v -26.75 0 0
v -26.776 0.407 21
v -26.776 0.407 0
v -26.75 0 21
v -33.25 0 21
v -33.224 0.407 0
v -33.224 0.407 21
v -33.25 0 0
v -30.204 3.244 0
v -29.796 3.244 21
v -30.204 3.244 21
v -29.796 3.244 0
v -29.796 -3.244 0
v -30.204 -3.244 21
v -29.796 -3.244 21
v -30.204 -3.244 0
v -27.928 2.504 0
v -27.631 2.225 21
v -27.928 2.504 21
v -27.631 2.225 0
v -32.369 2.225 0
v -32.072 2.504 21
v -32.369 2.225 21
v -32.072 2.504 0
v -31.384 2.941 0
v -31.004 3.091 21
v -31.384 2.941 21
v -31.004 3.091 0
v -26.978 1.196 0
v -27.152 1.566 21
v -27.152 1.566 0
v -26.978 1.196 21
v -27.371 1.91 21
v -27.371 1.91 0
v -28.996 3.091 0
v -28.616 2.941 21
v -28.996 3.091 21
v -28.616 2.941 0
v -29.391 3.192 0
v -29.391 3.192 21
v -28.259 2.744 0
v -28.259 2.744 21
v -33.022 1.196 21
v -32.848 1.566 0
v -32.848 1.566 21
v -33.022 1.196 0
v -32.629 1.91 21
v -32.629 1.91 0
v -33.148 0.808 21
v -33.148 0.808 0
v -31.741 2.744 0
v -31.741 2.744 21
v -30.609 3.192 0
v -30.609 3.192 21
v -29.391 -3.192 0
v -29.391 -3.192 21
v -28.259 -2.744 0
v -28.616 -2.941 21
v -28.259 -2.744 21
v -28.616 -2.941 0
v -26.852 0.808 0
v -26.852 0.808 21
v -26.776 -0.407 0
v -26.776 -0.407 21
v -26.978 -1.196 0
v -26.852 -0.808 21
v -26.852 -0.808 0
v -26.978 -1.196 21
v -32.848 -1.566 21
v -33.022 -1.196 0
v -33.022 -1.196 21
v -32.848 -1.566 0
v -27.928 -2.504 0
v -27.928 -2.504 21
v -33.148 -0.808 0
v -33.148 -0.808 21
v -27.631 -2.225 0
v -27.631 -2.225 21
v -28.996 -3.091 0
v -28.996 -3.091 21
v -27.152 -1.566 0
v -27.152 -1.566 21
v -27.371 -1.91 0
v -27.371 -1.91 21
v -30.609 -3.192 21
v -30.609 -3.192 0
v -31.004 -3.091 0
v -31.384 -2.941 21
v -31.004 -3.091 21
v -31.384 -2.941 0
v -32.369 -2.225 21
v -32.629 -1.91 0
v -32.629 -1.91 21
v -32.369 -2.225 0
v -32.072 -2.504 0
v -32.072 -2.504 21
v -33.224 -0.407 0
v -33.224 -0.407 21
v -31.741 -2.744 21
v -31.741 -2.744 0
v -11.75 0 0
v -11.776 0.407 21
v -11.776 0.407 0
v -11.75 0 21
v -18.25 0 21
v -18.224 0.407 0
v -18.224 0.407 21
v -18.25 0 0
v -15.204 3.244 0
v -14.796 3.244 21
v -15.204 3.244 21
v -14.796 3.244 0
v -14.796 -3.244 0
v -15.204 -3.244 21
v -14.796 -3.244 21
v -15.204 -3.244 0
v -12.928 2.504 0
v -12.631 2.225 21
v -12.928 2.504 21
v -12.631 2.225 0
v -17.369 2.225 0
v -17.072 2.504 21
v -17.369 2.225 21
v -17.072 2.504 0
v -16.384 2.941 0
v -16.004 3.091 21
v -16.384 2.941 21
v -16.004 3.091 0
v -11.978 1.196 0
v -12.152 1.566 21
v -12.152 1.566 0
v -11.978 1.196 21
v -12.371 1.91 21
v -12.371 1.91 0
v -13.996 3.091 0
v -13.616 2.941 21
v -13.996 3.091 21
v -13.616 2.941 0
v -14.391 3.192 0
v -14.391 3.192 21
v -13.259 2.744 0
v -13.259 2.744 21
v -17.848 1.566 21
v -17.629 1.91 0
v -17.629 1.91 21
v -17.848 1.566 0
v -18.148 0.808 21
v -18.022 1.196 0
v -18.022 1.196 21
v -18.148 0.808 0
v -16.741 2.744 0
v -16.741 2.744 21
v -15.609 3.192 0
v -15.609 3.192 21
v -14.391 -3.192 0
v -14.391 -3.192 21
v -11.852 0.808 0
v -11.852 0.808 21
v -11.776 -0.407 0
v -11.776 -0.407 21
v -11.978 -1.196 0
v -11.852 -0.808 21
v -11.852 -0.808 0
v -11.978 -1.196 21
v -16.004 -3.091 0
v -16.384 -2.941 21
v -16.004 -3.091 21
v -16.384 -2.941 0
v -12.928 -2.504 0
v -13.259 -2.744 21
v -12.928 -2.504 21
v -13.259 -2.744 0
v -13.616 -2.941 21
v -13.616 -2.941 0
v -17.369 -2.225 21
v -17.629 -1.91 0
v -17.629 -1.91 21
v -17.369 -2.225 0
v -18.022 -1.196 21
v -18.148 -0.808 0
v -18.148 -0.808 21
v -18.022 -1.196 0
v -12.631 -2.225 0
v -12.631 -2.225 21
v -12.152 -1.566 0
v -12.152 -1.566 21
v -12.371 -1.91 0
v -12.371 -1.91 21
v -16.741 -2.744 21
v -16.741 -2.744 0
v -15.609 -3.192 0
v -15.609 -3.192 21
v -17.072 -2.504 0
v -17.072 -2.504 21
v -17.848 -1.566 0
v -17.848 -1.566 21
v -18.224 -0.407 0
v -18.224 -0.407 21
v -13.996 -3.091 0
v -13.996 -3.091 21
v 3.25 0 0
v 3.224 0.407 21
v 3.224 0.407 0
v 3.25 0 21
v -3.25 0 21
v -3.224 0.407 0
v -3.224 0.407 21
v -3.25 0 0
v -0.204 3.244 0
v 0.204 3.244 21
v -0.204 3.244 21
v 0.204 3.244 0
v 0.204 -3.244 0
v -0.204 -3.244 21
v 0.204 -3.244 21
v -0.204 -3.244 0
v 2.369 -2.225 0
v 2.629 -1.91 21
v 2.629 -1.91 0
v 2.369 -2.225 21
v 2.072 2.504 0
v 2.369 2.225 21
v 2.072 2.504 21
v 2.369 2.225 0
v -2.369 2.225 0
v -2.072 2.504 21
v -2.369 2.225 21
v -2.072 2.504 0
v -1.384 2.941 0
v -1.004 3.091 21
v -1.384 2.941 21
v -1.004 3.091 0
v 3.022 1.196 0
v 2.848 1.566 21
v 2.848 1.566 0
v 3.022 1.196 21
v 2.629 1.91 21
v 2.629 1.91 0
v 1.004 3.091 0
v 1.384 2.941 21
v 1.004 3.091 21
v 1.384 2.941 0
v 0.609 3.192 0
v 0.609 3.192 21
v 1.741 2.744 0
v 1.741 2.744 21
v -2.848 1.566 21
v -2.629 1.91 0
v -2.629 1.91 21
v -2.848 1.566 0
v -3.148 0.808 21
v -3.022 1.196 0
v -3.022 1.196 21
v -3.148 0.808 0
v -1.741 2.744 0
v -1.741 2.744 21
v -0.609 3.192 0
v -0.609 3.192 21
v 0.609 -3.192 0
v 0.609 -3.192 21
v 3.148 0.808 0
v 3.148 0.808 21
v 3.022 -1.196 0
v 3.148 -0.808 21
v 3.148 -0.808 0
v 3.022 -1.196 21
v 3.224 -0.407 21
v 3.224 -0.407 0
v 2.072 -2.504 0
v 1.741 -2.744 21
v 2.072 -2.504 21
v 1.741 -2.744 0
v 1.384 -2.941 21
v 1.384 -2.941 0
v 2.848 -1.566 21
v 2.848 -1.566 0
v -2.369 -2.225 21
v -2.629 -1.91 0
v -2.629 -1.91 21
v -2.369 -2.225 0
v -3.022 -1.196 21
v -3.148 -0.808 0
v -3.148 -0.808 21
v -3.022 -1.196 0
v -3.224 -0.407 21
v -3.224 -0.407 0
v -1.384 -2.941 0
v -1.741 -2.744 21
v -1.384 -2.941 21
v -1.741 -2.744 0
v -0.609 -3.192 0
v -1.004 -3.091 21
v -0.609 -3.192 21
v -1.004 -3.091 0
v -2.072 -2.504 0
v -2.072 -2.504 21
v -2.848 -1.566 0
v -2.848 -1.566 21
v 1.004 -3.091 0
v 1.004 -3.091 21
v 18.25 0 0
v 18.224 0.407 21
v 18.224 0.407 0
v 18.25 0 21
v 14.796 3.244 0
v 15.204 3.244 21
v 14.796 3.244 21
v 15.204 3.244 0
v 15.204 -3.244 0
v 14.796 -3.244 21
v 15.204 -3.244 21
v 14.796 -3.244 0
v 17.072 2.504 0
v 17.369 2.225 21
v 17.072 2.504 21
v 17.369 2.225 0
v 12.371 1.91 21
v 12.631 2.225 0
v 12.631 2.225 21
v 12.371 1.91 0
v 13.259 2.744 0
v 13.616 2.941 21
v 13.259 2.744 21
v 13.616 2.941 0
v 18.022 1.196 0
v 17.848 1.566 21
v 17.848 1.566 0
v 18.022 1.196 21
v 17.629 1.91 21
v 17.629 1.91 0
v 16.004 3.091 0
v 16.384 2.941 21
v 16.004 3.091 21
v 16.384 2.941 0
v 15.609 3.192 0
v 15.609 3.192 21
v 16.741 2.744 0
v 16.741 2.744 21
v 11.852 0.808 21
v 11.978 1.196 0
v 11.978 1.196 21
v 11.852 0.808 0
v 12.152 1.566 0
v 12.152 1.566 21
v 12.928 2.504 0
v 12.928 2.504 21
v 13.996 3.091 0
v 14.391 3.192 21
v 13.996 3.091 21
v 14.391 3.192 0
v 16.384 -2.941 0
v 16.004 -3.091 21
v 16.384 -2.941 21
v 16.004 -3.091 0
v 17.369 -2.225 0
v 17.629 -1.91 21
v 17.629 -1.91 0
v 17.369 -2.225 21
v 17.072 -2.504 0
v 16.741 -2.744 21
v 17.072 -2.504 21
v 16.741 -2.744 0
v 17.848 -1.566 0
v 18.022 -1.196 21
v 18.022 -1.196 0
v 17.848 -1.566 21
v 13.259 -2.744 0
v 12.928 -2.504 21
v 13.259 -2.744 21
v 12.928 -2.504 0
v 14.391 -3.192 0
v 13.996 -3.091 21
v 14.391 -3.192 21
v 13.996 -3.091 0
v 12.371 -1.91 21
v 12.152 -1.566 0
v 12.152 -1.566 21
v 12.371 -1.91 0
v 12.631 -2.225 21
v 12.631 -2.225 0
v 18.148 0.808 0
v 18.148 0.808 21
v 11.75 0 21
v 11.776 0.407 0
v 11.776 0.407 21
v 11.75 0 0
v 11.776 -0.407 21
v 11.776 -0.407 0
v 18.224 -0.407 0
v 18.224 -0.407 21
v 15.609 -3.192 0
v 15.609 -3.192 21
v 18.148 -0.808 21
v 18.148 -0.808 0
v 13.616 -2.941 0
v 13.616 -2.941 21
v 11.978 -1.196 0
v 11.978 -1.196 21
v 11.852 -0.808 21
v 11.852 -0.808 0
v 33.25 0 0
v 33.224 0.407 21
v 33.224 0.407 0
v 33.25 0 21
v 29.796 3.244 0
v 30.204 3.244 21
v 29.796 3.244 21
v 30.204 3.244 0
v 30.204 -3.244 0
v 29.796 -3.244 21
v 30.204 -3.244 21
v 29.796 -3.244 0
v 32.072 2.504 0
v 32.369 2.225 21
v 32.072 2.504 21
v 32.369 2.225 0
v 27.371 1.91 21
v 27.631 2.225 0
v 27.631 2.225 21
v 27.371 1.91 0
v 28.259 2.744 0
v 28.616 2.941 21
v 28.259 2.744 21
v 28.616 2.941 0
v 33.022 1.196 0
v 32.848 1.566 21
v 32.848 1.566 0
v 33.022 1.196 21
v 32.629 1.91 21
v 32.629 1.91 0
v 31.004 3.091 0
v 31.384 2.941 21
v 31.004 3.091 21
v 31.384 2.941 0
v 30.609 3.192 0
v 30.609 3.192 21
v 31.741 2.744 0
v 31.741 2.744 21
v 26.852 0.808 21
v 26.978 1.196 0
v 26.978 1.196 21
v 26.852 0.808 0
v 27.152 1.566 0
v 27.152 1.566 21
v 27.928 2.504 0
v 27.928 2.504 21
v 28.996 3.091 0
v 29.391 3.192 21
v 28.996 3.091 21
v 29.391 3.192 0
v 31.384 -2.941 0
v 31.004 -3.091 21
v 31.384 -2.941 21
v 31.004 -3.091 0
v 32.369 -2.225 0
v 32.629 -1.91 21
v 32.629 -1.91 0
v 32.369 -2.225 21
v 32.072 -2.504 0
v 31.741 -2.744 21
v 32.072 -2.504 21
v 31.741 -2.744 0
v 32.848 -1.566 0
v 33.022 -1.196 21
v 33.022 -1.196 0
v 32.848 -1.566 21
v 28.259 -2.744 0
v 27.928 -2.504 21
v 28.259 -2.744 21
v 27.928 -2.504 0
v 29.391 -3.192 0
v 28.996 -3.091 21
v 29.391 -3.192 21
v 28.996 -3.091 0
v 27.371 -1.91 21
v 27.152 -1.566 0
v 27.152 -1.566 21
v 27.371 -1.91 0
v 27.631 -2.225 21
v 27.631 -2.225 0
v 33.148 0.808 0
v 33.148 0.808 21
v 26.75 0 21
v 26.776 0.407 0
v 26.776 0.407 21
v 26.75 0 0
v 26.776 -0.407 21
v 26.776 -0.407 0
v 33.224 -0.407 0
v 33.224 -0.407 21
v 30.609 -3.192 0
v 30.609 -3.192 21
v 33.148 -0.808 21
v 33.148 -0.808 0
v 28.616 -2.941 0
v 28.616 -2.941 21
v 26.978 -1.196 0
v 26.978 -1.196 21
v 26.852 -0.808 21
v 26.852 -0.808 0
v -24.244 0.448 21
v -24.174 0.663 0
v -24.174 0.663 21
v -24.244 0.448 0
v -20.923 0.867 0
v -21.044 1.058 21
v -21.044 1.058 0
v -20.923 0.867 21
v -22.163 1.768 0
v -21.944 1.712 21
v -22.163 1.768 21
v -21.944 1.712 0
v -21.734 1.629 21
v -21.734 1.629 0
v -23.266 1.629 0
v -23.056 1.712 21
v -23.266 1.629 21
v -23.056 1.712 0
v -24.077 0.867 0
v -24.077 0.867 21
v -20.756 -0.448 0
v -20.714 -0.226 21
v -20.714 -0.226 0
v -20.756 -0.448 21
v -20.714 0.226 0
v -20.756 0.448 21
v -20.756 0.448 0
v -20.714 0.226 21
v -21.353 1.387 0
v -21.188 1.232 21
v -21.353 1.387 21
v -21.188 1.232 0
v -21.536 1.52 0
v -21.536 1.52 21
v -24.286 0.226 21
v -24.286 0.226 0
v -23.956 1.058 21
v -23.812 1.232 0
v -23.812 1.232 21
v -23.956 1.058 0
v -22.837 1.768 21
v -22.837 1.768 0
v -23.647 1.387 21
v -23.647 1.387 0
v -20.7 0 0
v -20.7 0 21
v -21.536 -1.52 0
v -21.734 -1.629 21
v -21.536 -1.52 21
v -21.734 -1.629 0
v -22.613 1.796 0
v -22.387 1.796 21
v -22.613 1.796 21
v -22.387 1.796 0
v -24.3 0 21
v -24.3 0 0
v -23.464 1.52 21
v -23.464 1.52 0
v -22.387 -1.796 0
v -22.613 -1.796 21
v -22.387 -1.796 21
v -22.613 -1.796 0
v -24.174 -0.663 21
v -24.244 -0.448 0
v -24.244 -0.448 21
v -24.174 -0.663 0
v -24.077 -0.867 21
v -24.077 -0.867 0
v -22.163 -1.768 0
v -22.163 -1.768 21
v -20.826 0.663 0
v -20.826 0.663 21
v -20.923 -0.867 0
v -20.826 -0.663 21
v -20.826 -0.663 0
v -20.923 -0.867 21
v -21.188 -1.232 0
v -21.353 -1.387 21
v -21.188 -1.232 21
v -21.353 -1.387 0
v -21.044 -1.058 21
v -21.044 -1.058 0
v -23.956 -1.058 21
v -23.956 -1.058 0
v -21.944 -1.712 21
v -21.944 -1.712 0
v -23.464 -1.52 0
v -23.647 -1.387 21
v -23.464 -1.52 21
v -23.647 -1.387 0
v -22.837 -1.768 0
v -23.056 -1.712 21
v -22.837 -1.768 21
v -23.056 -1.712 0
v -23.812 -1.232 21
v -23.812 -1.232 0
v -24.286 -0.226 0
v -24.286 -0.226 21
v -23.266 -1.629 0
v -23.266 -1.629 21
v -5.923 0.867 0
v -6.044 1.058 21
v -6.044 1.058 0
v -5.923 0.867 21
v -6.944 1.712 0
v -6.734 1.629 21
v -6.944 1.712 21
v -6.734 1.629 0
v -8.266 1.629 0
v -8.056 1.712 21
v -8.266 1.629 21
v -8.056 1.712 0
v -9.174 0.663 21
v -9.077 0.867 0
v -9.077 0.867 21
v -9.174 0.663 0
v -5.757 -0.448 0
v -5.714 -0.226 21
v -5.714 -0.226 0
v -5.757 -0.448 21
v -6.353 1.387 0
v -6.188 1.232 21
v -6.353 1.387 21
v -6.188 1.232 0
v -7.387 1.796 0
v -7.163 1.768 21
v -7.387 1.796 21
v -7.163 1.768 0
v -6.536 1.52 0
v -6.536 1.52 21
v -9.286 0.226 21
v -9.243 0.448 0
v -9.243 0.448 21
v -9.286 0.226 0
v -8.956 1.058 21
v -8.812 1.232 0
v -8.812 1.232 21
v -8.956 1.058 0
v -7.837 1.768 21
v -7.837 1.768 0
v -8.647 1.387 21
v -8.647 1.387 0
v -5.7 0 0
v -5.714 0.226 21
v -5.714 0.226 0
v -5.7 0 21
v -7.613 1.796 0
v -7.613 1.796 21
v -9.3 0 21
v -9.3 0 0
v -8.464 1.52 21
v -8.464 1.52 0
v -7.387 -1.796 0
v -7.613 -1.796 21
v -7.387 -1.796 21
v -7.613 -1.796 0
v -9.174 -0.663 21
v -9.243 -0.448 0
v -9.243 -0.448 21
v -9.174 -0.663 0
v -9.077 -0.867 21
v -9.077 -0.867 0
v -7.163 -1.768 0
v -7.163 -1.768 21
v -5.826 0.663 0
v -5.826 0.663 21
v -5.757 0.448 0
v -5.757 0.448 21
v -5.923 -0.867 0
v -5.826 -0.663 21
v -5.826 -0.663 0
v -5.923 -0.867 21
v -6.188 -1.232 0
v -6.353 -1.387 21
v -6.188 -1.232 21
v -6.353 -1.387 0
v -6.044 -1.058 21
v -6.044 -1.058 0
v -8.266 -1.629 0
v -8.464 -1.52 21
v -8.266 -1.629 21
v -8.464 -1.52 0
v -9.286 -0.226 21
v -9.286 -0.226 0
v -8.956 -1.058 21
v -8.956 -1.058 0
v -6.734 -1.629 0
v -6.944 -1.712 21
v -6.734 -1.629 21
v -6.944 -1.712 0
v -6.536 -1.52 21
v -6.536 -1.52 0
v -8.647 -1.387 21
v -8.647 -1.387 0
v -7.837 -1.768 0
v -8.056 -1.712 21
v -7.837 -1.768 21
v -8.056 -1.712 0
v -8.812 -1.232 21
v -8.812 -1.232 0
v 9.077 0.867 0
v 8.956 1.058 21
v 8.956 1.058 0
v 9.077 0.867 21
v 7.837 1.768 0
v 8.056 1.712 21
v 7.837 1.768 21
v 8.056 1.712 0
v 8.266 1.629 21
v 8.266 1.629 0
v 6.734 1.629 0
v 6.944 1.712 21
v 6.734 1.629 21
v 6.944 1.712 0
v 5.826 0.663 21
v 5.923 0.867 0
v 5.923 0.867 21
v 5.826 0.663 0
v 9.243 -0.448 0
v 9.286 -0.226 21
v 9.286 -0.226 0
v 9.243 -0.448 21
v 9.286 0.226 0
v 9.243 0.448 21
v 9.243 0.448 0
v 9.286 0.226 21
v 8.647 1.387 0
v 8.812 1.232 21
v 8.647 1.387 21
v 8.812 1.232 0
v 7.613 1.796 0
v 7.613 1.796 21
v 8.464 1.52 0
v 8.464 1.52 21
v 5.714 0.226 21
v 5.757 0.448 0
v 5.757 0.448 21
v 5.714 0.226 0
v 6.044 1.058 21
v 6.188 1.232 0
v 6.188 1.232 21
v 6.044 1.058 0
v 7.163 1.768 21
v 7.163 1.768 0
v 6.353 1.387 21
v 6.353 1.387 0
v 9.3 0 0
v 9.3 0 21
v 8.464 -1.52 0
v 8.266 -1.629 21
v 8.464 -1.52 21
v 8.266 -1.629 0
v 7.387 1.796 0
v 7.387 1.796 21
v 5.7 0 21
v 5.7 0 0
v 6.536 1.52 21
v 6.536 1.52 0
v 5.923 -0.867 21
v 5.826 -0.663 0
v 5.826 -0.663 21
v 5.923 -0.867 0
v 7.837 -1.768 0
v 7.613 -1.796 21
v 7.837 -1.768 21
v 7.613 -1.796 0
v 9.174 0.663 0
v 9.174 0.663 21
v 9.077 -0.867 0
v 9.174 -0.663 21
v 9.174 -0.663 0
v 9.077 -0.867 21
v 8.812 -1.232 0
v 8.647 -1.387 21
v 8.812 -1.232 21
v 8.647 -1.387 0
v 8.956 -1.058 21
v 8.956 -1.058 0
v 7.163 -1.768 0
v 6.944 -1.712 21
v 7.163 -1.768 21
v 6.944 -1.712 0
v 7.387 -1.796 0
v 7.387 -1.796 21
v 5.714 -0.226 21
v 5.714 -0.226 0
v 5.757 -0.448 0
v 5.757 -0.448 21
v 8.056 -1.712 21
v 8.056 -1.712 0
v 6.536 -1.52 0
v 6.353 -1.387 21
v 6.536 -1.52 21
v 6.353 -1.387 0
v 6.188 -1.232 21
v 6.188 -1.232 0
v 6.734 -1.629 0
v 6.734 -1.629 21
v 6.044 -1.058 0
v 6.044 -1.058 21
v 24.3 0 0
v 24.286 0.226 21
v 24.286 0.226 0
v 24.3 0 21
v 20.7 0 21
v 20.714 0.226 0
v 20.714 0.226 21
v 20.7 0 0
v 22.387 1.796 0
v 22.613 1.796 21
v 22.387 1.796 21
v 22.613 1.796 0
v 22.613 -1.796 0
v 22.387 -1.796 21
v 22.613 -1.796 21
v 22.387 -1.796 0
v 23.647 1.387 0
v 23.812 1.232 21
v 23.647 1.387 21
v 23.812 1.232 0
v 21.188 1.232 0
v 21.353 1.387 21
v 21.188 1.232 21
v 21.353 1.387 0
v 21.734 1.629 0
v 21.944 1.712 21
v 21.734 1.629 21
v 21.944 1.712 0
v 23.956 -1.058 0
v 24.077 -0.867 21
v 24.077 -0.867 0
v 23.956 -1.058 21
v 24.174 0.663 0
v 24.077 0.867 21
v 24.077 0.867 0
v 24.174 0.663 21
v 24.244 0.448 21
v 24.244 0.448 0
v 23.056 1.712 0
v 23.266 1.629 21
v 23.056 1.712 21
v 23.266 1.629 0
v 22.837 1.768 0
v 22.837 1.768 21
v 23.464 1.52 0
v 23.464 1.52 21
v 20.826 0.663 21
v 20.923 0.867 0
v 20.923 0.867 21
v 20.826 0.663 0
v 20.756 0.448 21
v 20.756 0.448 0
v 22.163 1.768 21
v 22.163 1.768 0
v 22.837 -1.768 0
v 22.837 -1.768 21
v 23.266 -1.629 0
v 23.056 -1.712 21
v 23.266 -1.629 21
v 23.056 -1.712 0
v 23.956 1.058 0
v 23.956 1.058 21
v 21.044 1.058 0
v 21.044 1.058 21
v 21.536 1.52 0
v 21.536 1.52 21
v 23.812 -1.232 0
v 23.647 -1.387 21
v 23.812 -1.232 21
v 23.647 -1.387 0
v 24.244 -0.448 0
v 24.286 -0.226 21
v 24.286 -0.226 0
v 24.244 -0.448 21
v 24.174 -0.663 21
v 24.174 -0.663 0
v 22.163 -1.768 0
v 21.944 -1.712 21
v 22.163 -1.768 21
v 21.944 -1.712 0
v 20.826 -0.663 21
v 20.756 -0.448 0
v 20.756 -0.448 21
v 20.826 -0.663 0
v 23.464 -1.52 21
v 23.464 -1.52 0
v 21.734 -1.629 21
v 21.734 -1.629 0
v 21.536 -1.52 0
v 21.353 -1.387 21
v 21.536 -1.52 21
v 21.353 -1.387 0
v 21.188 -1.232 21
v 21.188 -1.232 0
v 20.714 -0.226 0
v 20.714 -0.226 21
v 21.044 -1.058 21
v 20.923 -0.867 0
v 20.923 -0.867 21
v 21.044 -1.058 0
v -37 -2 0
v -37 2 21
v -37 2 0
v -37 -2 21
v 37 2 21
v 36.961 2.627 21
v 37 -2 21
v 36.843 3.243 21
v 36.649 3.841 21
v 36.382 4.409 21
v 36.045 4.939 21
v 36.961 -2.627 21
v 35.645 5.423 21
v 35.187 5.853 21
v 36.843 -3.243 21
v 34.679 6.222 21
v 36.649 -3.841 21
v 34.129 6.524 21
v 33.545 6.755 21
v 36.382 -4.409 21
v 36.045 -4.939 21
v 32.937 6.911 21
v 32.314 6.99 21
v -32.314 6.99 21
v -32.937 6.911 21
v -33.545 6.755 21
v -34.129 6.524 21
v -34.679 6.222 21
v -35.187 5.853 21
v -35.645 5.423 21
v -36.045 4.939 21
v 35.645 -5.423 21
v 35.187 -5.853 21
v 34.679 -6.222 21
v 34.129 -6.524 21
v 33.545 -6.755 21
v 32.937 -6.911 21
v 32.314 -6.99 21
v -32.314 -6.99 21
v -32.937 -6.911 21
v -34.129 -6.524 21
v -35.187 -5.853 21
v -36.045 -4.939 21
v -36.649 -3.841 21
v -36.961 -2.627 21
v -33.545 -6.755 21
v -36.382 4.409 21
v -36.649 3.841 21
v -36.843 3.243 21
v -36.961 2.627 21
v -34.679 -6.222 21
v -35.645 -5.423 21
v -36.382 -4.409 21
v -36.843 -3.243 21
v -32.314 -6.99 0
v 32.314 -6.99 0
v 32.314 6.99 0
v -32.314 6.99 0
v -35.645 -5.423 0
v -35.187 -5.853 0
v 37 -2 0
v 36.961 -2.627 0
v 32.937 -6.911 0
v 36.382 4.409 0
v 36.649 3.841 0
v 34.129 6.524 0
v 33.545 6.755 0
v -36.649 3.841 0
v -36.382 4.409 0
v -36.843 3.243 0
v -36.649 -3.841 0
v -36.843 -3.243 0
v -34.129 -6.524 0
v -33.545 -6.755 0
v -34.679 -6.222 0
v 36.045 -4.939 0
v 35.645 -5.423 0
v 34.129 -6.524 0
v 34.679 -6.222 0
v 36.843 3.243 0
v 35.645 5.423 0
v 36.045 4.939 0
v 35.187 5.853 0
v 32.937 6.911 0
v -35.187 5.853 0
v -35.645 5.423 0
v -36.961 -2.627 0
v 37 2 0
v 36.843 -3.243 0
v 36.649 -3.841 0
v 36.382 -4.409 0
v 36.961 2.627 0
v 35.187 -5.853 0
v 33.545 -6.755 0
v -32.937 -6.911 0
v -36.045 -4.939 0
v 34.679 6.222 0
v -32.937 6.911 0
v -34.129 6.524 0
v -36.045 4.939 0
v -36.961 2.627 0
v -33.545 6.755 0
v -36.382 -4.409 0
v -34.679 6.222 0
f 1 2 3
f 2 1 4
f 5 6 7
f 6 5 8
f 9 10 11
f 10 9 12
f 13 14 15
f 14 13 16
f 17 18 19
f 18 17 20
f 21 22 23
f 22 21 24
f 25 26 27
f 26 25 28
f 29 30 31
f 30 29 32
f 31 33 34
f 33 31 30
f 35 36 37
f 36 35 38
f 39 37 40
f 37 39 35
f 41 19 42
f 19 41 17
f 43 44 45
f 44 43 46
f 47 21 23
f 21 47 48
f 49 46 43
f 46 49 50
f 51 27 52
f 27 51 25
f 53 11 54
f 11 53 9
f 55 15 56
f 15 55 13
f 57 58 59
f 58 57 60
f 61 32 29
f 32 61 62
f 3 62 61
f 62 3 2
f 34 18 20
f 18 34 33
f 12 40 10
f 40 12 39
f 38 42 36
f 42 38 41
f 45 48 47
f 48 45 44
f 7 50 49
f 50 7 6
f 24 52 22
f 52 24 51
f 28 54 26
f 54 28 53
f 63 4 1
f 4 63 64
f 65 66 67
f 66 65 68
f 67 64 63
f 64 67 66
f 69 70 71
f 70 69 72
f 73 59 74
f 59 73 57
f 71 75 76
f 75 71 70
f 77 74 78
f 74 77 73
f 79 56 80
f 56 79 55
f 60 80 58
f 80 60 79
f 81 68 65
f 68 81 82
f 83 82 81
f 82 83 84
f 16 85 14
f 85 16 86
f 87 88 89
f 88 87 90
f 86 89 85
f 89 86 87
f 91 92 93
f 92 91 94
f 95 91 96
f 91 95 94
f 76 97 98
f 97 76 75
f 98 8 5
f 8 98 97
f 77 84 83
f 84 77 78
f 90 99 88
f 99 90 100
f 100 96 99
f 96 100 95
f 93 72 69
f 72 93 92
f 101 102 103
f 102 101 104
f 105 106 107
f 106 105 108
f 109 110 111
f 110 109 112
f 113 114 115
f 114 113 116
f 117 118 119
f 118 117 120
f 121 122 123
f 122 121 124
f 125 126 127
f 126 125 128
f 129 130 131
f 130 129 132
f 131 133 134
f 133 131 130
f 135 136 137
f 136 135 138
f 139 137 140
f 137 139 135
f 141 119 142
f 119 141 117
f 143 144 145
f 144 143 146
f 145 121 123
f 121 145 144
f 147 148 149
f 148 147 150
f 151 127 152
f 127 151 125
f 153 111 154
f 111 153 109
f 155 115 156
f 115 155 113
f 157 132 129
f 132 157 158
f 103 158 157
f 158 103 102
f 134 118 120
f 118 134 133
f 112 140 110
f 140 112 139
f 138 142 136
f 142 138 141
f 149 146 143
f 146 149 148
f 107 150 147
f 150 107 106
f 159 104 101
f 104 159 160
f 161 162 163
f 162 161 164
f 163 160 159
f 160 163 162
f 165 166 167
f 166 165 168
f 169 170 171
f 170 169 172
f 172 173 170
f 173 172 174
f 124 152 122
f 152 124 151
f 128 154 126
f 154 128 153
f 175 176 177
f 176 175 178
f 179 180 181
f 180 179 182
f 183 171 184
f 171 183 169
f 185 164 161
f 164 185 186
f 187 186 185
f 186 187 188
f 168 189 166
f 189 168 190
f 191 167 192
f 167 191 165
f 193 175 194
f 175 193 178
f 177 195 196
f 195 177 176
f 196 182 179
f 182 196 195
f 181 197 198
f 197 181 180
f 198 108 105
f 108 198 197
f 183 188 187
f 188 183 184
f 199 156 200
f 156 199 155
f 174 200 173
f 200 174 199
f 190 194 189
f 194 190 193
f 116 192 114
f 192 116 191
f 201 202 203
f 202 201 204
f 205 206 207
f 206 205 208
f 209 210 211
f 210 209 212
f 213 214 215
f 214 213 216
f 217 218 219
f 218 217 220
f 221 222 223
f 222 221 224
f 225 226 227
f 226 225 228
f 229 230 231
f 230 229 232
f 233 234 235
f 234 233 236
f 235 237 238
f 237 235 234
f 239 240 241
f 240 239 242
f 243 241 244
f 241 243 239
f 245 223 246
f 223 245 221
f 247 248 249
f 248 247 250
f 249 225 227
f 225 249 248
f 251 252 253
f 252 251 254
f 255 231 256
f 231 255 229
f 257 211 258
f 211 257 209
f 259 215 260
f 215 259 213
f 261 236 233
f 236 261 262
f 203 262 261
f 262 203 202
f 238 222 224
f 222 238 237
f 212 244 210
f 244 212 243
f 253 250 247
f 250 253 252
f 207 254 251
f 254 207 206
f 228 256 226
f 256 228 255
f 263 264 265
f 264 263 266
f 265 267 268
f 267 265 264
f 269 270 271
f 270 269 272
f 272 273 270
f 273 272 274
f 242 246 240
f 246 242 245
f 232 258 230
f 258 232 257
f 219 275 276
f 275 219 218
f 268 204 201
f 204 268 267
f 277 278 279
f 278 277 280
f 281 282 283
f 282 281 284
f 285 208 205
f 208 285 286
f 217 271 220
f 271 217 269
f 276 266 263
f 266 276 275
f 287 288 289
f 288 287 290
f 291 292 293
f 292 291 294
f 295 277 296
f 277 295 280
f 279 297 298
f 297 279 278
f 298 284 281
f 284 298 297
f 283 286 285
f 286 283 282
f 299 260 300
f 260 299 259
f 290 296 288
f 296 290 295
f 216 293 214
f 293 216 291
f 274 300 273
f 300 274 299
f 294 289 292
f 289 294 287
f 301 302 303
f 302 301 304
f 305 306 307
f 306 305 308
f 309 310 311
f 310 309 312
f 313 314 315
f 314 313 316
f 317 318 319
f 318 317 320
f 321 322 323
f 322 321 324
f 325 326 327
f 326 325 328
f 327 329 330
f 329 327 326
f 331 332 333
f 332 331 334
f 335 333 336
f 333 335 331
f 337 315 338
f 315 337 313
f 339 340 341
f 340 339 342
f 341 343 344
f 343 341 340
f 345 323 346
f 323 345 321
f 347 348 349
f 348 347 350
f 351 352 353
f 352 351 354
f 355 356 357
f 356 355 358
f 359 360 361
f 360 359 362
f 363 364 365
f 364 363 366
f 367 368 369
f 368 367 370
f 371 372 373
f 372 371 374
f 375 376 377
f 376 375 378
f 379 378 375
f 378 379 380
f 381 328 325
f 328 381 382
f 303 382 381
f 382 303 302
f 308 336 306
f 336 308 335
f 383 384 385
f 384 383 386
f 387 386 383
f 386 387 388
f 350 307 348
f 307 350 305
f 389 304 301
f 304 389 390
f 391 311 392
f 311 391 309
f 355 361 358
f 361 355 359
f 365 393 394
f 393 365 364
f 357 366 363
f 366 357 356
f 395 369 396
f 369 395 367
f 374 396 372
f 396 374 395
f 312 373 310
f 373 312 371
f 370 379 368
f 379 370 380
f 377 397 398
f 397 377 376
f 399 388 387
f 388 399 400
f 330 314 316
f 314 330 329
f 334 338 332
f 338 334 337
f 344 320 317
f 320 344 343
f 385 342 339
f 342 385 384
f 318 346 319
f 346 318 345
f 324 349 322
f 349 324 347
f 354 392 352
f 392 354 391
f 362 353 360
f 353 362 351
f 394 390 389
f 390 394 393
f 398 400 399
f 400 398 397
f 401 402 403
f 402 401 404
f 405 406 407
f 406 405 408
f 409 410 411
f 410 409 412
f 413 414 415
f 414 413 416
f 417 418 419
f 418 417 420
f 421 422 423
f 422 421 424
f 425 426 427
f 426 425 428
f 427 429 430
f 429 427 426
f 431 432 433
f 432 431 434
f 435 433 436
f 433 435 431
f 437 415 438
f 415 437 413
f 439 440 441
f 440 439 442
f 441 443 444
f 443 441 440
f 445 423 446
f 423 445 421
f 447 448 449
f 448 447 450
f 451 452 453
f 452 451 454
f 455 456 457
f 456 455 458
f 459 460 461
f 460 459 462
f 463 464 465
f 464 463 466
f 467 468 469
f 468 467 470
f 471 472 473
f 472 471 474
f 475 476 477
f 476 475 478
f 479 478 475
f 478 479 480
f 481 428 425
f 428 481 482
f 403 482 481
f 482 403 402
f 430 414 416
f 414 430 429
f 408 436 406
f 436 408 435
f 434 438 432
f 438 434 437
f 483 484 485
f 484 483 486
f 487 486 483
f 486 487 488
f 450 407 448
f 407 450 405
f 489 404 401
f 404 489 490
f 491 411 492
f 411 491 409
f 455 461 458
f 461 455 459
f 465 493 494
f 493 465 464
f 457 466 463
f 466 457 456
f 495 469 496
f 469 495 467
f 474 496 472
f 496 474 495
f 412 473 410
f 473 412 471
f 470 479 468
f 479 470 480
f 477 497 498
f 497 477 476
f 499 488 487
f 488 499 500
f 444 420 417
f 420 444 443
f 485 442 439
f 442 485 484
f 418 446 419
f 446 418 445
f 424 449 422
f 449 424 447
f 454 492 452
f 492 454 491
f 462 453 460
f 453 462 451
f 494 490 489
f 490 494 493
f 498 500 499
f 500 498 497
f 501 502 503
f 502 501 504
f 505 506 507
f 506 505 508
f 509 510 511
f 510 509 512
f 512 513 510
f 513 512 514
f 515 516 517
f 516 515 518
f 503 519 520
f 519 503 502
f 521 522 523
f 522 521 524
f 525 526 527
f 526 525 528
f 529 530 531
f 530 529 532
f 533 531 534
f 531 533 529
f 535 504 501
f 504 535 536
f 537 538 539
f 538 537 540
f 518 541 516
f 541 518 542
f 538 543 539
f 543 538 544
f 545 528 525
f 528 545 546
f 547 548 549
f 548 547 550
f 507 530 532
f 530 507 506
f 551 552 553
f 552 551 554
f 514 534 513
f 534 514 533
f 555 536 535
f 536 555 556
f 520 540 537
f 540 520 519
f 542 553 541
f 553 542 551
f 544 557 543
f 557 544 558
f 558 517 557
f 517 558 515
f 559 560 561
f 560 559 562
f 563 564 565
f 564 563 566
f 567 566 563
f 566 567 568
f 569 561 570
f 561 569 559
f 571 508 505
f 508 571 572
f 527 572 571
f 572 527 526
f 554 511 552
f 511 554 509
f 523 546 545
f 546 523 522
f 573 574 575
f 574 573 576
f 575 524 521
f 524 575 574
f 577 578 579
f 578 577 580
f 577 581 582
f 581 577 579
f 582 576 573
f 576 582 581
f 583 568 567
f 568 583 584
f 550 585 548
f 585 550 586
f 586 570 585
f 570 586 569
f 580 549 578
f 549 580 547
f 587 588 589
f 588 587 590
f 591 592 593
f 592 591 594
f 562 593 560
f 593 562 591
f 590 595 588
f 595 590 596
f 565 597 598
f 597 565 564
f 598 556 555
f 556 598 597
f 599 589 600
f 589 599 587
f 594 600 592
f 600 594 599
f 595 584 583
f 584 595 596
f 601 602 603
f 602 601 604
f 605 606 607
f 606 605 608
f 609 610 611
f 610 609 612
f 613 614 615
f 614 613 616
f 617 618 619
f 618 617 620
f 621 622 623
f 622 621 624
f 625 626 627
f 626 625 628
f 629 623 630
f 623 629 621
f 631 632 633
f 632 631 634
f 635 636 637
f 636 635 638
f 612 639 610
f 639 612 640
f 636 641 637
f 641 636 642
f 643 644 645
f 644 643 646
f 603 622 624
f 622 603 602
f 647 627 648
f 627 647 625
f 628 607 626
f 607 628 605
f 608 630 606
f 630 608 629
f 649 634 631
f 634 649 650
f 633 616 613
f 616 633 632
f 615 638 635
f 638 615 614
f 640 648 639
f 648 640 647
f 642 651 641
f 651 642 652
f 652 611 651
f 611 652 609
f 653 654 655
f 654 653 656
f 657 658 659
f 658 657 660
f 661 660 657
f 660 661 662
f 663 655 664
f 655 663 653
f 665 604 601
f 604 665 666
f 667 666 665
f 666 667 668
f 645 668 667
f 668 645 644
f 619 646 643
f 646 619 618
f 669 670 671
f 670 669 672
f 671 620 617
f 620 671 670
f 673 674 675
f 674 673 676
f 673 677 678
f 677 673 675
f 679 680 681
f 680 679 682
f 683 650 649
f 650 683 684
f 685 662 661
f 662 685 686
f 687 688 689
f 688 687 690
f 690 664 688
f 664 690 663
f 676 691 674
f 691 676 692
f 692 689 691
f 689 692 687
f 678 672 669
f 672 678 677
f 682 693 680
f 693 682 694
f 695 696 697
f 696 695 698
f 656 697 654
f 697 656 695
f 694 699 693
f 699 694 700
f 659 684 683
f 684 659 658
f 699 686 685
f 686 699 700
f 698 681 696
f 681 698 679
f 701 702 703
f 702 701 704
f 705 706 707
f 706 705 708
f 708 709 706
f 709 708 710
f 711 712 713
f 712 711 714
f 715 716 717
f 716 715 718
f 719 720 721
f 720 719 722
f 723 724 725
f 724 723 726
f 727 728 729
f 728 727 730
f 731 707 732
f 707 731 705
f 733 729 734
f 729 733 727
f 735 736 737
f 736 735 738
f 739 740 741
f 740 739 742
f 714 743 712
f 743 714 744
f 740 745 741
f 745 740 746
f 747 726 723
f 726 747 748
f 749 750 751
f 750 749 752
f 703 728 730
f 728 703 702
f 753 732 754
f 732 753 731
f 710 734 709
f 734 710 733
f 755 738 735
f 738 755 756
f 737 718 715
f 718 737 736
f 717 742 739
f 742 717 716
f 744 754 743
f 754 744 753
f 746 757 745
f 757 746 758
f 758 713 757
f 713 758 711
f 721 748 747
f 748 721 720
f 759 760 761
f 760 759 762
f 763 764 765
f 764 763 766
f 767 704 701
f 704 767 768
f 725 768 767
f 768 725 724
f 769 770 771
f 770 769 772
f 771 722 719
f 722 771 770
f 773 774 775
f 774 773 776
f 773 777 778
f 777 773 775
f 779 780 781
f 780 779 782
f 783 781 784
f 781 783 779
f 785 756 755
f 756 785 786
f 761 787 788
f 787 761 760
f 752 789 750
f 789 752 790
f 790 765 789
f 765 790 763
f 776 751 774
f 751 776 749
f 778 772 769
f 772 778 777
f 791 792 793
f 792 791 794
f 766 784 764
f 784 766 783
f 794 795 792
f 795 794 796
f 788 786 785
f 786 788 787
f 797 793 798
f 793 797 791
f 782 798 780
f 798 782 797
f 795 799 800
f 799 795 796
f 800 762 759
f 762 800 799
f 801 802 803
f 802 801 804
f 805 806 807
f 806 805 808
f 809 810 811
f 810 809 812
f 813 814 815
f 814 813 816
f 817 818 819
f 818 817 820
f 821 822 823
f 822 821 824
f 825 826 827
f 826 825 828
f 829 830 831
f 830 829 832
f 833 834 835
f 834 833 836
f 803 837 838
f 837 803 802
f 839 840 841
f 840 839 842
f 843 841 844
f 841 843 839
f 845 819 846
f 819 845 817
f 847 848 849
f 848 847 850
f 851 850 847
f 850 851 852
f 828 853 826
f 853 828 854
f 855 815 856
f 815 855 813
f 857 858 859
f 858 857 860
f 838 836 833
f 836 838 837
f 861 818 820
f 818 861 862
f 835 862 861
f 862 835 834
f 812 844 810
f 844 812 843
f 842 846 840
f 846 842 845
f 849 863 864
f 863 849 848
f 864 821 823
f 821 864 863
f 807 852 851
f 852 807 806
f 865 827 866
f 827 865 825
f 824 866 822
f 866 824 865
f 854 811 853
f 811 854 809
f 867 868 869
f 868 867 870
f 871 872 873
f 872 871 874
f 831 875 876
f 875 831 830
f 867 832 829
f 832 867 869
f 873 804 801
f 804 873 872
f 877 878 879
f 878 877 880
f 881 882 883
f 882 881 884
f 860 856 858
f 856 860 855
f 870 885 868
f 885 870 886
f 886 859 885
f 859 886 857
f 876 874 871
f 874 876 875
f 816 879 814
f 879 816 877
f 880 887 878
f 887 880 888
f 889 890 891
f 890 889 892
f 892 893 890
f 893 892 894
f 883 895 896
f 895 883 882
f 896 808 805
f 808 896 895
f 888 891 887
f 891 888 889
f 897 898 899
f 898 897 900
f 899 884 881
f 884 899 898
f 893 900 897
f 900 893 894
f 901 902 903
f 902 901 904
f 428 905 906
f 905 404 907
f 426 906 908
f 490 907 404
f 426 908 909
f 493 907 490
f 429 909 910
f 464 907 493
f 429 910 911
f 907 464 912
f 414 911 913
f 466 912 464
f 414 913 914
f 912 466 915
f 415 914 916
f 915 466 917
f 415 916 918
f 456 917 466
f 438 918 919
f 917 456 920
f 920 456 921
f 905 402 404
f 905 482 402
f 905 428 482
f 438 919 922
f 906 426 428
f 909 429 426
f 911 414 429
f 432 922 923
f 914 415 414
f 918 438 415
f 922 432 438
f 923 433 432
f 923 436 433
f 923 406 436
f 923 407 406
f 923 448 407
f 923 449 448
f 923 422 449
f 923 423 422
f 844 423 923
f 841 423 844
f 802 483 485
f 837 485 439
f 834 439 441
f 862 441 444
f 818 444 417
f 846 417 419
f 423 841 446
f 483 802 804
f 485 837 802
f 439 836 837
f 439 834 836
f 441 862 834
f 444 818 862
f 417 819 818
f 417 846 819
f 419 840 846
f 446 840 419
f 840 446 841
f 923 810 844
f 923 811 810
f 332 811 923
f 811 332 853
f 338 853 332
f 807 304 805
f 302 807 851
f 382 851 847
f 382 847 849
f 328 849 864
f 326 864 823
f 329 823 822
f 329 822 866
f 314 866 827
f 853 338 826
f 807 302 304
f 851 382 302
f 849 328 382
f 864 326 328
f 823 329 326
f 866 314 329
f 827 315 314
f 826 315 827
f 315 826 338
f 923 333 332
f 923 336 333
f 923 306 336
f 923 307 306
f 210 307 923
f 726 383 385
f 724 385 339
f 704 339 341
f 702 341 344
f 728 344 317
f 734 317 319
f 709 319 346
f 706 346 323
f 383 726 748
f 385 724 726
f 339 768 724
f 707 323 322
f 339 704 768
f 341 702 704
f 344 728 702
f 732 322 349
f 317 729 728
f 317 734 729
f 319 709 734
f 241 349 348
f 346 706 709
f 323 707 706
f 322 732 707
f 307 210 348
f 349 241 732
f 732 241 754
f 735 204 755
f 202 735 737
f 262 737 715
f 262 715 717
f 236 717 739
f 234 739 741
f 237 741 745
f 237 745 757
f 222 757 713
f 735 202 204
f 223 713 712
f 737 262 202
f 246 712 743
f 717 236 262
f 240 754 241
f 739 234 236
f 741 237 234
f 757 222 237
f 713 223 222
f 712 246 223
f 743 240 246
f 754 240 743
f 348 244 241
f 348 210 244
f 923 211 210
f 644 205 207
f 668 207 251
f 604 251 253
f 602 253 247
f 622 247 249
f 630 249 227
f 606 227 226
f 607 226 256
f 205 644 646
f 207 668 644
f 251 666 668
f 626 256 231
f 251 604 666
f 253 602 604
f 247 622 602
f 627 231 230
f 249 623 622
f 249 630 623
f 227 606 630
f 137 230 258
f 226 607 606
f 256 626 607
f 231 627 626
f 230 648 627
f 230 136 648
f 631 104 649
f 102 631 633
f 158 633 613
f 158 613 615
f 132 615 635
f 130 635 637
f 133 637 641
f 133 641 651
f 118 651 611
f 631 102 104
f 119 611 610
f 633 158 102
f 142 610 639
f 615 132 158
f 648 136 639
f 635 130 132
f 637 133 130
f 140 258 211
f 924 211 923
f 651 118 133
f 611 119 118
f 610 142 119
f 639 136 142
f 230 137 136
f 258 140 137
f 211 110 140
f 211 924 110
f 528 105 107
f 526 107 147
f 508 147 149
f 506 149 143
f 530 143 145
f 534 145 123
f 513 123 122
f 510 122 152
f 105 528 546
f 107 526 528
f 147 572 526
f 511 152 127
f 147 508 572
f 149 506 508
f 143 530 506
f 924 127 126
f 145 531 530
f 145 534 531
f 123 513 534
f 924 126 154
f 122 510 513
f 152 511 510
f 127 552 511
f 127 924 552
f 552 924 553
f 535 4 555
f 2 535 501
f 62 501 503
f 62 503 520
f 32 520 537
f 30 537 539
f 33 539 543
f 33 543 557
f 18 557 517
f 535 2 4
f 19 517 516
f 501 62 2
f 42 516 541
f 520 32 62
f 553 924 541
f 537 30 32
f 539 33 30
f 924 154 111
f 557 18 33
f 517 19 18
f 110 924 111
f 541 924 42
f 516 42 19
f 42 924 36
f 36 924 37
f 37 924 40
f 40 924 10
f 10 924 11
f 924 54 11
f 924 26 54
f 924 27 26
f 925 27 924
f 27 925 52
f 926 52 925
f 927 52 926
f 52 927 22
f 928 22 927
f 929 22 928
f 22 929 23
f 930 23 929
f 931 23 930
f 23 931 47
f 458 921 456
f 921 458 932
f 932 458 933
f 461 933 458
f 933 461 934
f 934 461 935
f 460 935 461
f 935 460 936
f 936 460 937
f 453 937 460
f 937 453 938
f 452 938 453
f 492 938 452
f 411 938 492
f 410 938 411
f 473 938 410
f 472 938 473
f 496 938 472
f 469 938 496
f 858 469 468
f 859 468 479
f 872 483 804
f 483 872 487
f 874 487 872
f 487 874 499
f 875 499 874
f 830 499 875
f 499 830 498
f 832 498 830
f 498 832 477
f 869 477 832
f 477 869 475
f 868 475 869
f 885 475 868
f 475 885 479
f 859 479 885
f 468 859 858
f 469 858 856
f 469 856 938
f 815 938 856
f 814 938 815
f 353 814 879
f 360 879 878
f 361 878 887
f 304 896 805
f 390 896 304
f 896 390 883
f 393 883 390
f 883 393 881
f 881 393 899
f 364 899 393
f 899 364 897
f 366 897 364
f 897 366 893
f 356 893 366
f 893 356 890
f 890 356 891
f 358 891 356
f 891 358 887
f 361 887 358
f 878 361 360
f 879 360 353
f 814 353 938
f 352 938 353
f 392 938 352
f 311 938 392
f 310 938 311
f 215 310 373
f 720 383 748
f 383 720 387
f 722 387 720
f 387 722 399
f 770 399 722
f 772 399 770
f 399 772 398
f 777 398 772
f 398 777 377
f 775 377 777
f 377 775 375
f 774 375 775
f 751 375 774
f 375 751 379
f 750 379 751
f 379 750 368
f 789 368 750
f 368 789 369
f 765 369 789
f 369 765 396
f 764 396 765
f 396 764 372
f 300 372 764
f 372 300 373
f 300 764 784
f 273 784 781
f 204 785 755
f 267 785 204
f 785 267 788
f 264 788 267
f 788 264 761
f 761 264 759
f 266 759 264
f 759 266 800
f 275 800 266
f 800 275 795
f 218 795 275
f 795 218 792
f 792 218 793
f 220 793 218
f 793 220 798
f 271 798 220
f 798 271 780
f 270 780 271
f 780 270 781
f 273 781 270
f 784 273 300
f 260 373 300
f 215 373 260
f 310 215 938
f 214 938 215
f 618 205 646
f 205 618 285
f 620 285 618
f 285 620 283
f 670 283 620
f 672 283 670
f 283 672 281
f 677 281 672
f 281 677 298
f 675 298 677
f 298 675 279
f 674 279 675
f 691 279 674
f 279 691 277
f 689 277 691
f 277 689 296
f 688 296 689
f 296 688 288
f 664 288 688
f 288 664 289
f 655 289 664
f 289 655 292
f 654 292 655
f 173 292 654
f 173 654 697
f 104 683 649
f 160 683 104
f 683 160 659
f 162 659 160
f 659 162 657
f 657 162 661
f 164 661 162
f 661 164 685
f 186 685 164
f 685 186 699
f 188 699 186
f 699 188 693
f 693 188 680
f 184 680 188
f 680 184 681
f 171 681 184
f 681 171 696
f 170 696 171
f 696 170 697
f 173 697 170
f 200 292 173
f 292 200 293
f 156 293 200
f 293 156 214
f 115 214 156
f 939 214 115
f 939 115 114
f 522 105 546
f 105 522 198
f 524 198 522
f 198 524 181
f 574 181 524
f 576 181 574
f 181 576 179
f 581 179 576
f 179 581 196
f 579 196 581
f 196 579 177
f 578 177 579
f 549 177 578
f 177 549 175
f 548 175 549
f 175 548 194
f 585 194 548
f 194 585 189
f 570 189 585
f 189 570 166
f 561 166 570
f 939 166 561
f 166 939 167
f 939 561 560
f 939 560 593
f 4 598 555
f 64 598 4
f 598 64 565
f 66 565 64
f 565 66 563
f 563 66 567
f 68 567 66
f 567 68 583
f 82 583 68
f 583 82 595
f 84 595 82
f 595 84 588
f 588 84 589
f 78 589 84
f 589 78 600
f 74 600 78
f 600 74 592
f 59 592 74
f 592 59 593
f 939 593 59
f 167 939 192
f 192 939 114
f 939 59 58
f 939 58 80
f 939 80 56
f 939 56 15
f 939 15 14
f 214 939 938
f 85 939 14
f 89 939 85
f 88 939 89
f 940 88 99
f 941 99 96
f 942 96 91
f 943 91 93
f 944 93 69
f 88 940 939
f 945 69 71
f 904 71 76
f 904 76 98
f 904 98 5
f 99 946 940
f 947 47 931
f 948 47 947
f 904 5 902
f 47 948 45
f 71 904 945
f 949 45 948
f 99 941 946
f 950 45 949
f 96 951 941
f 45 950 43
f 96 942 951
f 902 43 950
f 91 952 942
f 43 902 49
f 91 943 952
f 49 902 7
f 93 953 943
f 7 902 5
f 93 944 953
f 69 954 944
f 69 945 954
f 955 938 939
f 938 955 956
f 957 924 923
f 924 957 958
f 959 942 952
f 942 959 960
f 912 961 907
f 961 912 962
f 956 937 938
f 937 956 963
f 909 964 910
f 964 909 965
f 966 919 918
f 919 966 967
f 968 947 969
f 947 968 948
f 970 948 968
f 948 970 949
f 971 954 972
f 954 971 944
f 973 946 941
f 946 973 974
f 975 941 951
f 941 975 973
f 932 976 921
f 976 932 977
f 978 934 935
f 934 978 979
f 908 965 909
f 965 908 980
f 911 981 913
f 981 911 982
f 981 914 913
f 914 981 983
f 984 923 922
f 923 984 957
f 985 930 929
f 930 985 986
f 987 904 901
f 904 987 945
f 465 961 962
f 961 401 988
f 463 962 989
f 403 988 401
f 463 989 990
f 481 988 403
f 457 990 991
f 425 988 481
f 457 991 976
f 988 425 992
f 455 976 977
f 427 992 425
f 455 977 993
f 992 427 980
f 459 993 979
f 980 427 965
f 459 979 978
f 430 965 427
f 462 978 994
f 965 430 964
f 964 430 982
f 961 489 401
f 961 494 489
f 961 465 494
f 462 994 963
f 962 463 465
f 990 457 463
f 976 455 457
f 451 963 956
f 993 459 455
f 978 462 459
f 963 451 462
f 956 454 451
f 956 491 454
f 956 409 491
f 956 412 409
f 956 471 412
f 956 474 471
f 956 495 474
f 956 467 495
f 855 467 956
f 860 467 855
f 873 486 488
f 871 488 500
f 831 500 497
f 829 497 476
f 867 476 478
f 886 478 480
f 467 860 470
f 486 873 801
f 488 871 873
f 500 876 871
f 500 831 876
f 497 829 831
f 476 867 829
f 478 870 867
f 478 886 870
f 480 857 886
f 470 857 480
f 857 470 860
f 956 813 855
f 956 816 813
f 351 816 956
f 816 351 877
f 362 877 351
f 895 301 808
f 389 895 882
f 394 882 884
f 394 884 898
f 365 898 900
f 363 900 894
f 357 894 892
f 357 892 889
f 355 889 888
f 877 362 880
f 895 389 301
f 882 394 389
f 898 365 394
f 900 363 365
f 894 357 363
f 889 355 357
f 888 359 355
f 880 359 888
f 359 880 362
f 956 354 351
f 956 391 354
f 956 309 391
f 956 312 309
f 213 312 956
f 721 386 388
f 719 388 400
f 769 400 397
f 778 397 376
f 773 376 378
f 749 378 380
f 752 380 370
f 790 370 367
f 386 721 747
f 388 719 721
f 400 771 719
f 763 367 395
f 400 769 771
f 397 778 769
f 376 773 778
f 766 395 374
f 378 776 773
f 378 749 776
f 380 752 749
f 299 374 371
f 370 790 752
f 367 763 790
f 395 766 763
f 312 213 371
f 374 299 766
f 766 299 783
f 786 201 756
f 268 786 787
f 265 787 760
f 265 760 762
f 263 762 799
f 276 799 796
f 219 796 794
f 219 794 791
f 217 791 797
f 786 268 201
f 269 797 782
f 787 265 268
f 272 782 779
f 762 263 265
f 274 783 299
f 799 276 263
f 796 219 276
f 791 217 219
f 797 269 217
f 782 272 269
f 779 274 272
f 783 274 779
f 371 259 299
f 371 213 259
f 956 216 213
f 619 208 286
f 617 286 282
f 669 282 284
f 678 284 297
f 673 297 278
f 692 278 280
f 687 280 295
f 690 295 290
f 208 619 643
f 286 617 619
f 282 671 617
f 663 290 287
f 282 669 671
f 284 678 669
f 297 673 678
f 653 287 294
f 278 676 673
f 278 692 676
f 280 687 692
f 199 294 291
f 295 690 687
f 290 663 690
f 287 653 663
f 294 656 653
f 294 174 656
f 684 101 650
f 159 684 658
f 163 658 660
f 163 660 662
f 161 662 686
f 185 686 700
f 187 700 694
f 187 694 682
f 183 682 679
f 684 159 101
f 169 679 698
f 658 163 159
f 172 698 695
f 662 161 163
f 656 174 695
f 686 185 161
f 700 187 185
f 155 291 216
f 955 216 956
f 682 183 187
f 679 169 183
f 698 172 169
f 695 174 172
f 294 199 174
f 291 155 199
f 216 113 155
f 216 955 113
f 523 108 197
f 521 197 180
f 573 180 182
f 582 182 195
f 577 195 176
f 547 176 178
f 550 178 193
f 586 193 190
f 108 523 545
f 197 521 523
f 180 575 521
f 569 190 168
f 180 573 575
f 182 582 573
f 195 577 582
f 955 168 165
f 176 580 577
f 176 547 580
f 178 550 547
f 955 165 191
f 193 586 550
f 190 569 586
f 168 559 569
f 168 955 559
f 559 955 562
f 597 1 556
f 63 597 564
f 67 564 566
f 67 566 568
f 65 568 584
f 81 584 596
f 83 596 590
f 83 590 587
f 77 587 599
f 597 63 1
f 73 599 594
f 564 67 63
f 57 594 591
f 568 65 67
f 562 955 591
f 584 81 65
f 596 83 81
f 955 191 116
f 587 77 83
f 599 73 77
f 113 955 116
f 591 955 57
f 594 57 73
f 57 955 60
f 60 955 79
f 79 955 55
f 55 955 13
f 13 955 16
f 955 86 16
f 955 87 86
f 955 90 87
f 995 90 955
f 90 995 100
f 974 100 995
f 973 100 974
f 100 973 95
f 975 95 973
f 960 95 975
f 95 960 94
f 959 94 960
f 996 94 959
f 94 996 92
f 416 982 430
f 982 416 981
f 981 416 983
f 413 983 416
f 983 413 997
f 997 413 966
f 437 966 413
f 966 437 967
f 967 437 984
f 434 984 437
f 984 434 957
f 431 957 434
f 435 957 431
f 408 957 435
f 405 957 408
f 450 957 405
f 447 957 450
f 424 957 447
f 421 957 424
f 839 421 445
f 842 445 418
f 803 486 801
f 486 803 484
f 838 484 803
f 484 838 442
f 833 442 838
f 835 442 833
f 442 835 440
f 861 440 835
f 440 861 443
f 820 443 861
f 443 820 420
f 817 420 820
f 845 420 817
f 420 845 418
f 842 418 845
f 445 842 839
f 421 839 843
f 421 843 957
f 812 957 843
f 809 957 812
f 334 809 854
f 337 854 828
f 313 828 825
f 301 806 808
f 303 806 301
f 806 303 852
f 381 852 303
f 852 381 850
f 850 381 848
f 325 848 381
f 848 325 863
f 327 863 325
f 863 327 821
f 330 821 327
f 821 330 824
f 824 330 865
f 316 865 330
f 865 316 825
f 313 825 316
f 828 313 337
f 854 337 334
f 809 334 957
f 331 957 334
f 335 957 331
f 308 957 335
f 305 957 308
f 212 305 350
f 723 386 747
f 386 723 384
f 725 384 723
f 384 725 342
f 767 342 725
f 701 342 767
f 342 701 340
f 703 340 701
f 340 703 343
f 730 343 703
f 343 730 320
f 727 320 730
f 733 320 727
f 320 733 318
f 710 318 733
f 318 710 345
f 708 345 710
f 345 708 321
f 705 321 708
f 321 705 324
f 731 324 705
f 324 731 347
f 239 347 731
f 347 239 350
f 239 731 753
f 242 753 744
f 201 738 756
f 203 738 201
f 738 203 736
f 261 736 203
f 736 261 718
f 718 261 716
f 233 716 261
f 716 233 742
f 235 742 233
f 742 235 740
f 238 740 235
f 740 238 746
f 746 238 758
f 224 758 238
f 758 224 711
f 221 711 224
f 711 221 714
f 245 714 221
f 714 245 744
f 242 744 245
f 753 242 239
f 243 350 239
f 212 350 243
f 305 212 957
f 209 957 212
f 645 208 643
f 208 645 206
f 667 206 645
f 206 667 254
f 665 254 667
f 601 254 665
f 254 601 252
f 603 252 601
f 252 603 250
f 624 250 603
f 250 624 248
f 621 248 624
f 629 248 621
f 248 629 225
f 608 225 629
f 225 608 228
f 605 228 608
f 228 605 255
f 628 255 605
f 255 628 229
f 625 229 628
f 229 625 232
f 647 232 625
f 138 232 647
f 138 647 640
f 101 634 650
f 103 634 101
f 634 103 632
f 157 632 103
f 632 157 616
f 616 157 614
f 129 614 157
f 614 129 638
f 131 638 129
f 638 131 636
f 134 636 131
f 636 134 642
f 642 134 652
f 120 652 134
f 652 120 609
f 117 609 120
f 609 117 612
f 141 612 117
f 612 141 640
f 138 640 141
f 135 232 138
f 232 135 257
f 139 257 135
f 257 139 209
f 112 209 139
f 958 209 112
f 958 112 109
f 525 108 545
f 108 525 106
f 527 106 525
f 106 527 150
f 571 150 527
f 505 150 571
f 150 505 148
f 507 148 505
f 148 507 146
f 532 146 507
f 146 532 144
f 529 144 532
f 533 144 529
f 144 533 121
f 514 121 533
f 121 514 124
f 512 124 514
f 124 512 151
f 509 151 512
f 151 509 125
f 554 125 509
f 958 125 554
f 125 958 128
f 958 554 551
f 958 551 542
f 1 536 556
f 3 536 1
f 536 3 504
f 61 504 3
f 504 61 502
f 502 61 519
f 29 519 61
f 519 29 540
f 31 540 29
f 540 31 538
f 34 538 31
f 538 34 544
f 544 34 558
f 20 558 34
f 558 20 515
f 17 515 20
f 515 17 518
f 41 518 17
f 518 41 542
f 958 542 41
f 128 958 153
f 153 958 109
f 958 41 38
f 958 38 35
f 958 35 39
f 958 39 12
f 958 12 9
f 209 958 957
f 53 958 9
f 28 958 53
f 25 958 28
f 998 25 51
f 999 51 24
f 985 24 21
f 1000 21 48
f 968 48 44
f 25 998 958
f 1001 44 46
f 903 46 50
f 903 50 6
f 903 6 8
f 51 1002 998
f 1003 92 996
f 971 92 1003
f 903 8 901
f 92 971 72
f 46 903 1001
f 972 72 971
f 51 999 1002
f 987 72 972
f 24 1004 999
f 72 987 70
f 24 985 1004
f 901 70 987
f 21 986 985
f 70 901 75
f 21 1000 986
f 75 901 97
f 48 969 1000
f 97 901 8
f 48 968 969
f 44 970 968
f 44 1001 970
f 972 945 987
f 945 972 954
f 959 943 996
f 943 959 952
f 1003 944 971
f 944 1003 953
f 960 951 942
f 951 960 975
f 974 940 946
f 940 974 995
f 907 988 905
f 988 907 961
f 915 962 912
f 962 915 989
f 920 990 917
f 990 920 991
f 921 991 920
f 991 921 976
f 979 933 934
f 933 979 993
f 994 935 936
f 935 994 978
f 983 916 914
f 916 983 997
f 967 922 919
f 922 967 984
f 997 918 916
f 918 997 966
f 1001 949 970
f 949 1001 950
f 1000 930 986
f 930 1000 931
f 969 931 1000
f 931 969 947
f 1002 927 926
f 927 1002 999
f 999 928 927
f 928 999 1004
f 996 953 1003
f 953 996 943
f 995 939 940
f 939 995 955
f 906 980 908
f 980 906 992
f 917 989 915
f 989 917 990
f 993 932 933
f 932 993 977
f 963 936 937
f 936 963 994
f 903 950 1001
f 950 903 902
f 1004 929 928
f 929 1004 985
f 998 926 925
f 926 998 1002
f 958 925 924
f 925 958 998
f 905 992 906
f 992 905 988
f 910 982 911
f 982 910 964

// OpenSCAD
$fn = 50;


difference() {
	union() {
		translate(v = [0, 0, 0]) {
			rotate(a = [0, 0, 0]) {
				hull() {
					translate(v = [-32.0000000000, 2.0000000000, 0]) {
						rotate(a = [0, 0, 0]) {
							translate(v = [0, 0, 0]) {
								rotate(a = [0, 0, 0]) {
									cylinder(h = 21, r = 5);
								}
							}
						}
					}
					translate(v = [32.0000000000, 2.0000000000, 0]) {
						rotate(a = [0, 0, 0]) {
							translate(v = [0, 0, 0]) {
								rotate(a = [0, 0, 0]) {
									cylinder(h = 21, r = 5);
								}
							}
						}
					}
					translate(v = [-32.0000000000, -2.0000000000, 0]) {
						rotate(a = [0, 0, 0]) {
							translate(v = [0, 0, 0]) {
								rotate(a = [0, 0, 0]) {
									cylinder(h = 21, r = 5);
								}
							}
						}
					}
					translate(v = [32.0000000000, -2.0000000000, 0]) {
						rotate(a = [0, 0, 0]) {
							translate(v = [0, 0, 0]) {
								rotate(a = [0, 0, 0]) {
									cylinder(h = 21, r = 5);
								}
							}
						}
					}
				}
			}
		}
	}
	union() {
		translate(v = [-30.0000000000, 0.0000000000, 0]) {
			rotate(a = [0, 0, 0]) {
				translate(v = [0, 0, -50]) {
					rotate(a = [0, 0, 0]) {
						cylinder(h = 100, r = 3.2500000000);
					}
				}
			}
		}
		translate(v = [-15.0000000000, 0.0000000000, 0]) {
			rotate(a = [0, 0, 0]) {
				translate(v = [0, 0, -50]) {
					rotate(a = [0, 0, 0]) {
						cylinder(h = 100, r = 3.2500000000);
					}
				}
			}
		}
		translate(v = [0.0000000000, 0.0000000000, 0]) {
			rotate(a = [0, 0, 0]) {
				translate(v = [0, 0, -50]) {
					rotate(a = [0, 0, 0]) {
						cylinder(h = 100, r = 3.2500000000);
					}
				}
			}
		}
		translate(v = [15.0000000000, 0.0000000000, 0]) {
			rotate(a = [0, 0, 0]) {
				translate(v = [0, 0, -50]) {
					rotate(a = [0, 0, 0]) {
						cylinder(h = 100, r = 3.2500000000);
					}
				}
			}
		}
		translate(v = [30.0000000000, 0.0000000000, 0]) {
			rotate(a = [0, 0, 0]) {
				translate(v = [0, 0, -50]) {
					rotate(a = [0, 0, 0]) {
						cylinder(h = 100, r = 3.2500000000);
					}
				}
			}
		}
		translate(v = [-30.0000000000, 0.0000000000, 0]) {
			rotate(a = [0, 0, 0]) {
				translate(v = [0, 0, -50]) {
					rotate(a = [0, 0, 0]) {
						cylinder(h = 100, r = 1.8000000000);
					}
				}
			}
		}
		translate(v = [-22.5000000000, 0.0000000000, 0]) {
			rotate(a = [0, 0, 0]) {
				translate(v = [0, 0, -50]) {
					rotate(a = [0, 0, 0]) {
						cylinder(h = 100, r = 1.8000000000);
					}
				}
			}
		}
		translate(v = [-15.0000000000, 0.0000000000, 0]) {
			rotate(a = [0, 0, 0]) {
				translate(v = [0, 0, -50]) {
					rotate(a = [0, 0, 0]) {
						cylinder(h = 100, r = 1.8000000000);
					}
				}
			}
		}
		translate(v = [-7.5000000000, 0.0000000000, 0]) {
			rotate(a = [0, 0, 0]) {
				translate(v = [0, 0, -50]) {
					rotate(a = [0, 0, 0]) {
						cylinder(h = 100, r = 1.8000000000);
					}
				}
			}
		}
		translate(v = [0.0000000000, 0.0000000000, 0]) {
			rotate(a = [0, 0, 0]) {
				translate(v = [0, 0, -50]) {
					rotate(a = [0, 0, 0]) {
						cylinder(h = 100, r = 1.8000000000);
					}
				}
			}
		}
		translate(v = [7.5000000000, 0.0000000000, 0]) {
			rotate(a = [0, 0, 0]) {
				translate(v = [0, 0, -50]) {
					rotate(a = [0, 0, 0]) {
						cylinder(h = 100, r = 1.8000000000);
					}
				}
			}
		}
		translate(v = [15.0000000000, 0.0000000000, 0]) {
			rotate(a = [0, 0, 0]) {
				translate(v = [0, 0, -50]) {
					rotate(a = [0, 0, 0]) {
						cylinder(h = 100, r = 1.8000000000);
					}
				}
			}
		}
		translate(v = [22.5000000000, 0.0000000000, 0]) {
			rotate(a = [0, 0, 0]) {
				translate(v = [0, 0, -50]) {
					rotate(a = [0, 0, 0]) {
						cylinder(h = 100, r = 1.8000000000);
					}
				}
			}
		}
		translate(v = [30.0000000000, 0.0000000000, 0]) {
			rotate(a = [0, 0, 0]) {
				translate(v = [0, 0, -50]) {
					rotate(a = [0, 0, 0]) {
						cylinder(h = 100, r = 1.8000000000);
					}
				}
			}
		}
	}
}
